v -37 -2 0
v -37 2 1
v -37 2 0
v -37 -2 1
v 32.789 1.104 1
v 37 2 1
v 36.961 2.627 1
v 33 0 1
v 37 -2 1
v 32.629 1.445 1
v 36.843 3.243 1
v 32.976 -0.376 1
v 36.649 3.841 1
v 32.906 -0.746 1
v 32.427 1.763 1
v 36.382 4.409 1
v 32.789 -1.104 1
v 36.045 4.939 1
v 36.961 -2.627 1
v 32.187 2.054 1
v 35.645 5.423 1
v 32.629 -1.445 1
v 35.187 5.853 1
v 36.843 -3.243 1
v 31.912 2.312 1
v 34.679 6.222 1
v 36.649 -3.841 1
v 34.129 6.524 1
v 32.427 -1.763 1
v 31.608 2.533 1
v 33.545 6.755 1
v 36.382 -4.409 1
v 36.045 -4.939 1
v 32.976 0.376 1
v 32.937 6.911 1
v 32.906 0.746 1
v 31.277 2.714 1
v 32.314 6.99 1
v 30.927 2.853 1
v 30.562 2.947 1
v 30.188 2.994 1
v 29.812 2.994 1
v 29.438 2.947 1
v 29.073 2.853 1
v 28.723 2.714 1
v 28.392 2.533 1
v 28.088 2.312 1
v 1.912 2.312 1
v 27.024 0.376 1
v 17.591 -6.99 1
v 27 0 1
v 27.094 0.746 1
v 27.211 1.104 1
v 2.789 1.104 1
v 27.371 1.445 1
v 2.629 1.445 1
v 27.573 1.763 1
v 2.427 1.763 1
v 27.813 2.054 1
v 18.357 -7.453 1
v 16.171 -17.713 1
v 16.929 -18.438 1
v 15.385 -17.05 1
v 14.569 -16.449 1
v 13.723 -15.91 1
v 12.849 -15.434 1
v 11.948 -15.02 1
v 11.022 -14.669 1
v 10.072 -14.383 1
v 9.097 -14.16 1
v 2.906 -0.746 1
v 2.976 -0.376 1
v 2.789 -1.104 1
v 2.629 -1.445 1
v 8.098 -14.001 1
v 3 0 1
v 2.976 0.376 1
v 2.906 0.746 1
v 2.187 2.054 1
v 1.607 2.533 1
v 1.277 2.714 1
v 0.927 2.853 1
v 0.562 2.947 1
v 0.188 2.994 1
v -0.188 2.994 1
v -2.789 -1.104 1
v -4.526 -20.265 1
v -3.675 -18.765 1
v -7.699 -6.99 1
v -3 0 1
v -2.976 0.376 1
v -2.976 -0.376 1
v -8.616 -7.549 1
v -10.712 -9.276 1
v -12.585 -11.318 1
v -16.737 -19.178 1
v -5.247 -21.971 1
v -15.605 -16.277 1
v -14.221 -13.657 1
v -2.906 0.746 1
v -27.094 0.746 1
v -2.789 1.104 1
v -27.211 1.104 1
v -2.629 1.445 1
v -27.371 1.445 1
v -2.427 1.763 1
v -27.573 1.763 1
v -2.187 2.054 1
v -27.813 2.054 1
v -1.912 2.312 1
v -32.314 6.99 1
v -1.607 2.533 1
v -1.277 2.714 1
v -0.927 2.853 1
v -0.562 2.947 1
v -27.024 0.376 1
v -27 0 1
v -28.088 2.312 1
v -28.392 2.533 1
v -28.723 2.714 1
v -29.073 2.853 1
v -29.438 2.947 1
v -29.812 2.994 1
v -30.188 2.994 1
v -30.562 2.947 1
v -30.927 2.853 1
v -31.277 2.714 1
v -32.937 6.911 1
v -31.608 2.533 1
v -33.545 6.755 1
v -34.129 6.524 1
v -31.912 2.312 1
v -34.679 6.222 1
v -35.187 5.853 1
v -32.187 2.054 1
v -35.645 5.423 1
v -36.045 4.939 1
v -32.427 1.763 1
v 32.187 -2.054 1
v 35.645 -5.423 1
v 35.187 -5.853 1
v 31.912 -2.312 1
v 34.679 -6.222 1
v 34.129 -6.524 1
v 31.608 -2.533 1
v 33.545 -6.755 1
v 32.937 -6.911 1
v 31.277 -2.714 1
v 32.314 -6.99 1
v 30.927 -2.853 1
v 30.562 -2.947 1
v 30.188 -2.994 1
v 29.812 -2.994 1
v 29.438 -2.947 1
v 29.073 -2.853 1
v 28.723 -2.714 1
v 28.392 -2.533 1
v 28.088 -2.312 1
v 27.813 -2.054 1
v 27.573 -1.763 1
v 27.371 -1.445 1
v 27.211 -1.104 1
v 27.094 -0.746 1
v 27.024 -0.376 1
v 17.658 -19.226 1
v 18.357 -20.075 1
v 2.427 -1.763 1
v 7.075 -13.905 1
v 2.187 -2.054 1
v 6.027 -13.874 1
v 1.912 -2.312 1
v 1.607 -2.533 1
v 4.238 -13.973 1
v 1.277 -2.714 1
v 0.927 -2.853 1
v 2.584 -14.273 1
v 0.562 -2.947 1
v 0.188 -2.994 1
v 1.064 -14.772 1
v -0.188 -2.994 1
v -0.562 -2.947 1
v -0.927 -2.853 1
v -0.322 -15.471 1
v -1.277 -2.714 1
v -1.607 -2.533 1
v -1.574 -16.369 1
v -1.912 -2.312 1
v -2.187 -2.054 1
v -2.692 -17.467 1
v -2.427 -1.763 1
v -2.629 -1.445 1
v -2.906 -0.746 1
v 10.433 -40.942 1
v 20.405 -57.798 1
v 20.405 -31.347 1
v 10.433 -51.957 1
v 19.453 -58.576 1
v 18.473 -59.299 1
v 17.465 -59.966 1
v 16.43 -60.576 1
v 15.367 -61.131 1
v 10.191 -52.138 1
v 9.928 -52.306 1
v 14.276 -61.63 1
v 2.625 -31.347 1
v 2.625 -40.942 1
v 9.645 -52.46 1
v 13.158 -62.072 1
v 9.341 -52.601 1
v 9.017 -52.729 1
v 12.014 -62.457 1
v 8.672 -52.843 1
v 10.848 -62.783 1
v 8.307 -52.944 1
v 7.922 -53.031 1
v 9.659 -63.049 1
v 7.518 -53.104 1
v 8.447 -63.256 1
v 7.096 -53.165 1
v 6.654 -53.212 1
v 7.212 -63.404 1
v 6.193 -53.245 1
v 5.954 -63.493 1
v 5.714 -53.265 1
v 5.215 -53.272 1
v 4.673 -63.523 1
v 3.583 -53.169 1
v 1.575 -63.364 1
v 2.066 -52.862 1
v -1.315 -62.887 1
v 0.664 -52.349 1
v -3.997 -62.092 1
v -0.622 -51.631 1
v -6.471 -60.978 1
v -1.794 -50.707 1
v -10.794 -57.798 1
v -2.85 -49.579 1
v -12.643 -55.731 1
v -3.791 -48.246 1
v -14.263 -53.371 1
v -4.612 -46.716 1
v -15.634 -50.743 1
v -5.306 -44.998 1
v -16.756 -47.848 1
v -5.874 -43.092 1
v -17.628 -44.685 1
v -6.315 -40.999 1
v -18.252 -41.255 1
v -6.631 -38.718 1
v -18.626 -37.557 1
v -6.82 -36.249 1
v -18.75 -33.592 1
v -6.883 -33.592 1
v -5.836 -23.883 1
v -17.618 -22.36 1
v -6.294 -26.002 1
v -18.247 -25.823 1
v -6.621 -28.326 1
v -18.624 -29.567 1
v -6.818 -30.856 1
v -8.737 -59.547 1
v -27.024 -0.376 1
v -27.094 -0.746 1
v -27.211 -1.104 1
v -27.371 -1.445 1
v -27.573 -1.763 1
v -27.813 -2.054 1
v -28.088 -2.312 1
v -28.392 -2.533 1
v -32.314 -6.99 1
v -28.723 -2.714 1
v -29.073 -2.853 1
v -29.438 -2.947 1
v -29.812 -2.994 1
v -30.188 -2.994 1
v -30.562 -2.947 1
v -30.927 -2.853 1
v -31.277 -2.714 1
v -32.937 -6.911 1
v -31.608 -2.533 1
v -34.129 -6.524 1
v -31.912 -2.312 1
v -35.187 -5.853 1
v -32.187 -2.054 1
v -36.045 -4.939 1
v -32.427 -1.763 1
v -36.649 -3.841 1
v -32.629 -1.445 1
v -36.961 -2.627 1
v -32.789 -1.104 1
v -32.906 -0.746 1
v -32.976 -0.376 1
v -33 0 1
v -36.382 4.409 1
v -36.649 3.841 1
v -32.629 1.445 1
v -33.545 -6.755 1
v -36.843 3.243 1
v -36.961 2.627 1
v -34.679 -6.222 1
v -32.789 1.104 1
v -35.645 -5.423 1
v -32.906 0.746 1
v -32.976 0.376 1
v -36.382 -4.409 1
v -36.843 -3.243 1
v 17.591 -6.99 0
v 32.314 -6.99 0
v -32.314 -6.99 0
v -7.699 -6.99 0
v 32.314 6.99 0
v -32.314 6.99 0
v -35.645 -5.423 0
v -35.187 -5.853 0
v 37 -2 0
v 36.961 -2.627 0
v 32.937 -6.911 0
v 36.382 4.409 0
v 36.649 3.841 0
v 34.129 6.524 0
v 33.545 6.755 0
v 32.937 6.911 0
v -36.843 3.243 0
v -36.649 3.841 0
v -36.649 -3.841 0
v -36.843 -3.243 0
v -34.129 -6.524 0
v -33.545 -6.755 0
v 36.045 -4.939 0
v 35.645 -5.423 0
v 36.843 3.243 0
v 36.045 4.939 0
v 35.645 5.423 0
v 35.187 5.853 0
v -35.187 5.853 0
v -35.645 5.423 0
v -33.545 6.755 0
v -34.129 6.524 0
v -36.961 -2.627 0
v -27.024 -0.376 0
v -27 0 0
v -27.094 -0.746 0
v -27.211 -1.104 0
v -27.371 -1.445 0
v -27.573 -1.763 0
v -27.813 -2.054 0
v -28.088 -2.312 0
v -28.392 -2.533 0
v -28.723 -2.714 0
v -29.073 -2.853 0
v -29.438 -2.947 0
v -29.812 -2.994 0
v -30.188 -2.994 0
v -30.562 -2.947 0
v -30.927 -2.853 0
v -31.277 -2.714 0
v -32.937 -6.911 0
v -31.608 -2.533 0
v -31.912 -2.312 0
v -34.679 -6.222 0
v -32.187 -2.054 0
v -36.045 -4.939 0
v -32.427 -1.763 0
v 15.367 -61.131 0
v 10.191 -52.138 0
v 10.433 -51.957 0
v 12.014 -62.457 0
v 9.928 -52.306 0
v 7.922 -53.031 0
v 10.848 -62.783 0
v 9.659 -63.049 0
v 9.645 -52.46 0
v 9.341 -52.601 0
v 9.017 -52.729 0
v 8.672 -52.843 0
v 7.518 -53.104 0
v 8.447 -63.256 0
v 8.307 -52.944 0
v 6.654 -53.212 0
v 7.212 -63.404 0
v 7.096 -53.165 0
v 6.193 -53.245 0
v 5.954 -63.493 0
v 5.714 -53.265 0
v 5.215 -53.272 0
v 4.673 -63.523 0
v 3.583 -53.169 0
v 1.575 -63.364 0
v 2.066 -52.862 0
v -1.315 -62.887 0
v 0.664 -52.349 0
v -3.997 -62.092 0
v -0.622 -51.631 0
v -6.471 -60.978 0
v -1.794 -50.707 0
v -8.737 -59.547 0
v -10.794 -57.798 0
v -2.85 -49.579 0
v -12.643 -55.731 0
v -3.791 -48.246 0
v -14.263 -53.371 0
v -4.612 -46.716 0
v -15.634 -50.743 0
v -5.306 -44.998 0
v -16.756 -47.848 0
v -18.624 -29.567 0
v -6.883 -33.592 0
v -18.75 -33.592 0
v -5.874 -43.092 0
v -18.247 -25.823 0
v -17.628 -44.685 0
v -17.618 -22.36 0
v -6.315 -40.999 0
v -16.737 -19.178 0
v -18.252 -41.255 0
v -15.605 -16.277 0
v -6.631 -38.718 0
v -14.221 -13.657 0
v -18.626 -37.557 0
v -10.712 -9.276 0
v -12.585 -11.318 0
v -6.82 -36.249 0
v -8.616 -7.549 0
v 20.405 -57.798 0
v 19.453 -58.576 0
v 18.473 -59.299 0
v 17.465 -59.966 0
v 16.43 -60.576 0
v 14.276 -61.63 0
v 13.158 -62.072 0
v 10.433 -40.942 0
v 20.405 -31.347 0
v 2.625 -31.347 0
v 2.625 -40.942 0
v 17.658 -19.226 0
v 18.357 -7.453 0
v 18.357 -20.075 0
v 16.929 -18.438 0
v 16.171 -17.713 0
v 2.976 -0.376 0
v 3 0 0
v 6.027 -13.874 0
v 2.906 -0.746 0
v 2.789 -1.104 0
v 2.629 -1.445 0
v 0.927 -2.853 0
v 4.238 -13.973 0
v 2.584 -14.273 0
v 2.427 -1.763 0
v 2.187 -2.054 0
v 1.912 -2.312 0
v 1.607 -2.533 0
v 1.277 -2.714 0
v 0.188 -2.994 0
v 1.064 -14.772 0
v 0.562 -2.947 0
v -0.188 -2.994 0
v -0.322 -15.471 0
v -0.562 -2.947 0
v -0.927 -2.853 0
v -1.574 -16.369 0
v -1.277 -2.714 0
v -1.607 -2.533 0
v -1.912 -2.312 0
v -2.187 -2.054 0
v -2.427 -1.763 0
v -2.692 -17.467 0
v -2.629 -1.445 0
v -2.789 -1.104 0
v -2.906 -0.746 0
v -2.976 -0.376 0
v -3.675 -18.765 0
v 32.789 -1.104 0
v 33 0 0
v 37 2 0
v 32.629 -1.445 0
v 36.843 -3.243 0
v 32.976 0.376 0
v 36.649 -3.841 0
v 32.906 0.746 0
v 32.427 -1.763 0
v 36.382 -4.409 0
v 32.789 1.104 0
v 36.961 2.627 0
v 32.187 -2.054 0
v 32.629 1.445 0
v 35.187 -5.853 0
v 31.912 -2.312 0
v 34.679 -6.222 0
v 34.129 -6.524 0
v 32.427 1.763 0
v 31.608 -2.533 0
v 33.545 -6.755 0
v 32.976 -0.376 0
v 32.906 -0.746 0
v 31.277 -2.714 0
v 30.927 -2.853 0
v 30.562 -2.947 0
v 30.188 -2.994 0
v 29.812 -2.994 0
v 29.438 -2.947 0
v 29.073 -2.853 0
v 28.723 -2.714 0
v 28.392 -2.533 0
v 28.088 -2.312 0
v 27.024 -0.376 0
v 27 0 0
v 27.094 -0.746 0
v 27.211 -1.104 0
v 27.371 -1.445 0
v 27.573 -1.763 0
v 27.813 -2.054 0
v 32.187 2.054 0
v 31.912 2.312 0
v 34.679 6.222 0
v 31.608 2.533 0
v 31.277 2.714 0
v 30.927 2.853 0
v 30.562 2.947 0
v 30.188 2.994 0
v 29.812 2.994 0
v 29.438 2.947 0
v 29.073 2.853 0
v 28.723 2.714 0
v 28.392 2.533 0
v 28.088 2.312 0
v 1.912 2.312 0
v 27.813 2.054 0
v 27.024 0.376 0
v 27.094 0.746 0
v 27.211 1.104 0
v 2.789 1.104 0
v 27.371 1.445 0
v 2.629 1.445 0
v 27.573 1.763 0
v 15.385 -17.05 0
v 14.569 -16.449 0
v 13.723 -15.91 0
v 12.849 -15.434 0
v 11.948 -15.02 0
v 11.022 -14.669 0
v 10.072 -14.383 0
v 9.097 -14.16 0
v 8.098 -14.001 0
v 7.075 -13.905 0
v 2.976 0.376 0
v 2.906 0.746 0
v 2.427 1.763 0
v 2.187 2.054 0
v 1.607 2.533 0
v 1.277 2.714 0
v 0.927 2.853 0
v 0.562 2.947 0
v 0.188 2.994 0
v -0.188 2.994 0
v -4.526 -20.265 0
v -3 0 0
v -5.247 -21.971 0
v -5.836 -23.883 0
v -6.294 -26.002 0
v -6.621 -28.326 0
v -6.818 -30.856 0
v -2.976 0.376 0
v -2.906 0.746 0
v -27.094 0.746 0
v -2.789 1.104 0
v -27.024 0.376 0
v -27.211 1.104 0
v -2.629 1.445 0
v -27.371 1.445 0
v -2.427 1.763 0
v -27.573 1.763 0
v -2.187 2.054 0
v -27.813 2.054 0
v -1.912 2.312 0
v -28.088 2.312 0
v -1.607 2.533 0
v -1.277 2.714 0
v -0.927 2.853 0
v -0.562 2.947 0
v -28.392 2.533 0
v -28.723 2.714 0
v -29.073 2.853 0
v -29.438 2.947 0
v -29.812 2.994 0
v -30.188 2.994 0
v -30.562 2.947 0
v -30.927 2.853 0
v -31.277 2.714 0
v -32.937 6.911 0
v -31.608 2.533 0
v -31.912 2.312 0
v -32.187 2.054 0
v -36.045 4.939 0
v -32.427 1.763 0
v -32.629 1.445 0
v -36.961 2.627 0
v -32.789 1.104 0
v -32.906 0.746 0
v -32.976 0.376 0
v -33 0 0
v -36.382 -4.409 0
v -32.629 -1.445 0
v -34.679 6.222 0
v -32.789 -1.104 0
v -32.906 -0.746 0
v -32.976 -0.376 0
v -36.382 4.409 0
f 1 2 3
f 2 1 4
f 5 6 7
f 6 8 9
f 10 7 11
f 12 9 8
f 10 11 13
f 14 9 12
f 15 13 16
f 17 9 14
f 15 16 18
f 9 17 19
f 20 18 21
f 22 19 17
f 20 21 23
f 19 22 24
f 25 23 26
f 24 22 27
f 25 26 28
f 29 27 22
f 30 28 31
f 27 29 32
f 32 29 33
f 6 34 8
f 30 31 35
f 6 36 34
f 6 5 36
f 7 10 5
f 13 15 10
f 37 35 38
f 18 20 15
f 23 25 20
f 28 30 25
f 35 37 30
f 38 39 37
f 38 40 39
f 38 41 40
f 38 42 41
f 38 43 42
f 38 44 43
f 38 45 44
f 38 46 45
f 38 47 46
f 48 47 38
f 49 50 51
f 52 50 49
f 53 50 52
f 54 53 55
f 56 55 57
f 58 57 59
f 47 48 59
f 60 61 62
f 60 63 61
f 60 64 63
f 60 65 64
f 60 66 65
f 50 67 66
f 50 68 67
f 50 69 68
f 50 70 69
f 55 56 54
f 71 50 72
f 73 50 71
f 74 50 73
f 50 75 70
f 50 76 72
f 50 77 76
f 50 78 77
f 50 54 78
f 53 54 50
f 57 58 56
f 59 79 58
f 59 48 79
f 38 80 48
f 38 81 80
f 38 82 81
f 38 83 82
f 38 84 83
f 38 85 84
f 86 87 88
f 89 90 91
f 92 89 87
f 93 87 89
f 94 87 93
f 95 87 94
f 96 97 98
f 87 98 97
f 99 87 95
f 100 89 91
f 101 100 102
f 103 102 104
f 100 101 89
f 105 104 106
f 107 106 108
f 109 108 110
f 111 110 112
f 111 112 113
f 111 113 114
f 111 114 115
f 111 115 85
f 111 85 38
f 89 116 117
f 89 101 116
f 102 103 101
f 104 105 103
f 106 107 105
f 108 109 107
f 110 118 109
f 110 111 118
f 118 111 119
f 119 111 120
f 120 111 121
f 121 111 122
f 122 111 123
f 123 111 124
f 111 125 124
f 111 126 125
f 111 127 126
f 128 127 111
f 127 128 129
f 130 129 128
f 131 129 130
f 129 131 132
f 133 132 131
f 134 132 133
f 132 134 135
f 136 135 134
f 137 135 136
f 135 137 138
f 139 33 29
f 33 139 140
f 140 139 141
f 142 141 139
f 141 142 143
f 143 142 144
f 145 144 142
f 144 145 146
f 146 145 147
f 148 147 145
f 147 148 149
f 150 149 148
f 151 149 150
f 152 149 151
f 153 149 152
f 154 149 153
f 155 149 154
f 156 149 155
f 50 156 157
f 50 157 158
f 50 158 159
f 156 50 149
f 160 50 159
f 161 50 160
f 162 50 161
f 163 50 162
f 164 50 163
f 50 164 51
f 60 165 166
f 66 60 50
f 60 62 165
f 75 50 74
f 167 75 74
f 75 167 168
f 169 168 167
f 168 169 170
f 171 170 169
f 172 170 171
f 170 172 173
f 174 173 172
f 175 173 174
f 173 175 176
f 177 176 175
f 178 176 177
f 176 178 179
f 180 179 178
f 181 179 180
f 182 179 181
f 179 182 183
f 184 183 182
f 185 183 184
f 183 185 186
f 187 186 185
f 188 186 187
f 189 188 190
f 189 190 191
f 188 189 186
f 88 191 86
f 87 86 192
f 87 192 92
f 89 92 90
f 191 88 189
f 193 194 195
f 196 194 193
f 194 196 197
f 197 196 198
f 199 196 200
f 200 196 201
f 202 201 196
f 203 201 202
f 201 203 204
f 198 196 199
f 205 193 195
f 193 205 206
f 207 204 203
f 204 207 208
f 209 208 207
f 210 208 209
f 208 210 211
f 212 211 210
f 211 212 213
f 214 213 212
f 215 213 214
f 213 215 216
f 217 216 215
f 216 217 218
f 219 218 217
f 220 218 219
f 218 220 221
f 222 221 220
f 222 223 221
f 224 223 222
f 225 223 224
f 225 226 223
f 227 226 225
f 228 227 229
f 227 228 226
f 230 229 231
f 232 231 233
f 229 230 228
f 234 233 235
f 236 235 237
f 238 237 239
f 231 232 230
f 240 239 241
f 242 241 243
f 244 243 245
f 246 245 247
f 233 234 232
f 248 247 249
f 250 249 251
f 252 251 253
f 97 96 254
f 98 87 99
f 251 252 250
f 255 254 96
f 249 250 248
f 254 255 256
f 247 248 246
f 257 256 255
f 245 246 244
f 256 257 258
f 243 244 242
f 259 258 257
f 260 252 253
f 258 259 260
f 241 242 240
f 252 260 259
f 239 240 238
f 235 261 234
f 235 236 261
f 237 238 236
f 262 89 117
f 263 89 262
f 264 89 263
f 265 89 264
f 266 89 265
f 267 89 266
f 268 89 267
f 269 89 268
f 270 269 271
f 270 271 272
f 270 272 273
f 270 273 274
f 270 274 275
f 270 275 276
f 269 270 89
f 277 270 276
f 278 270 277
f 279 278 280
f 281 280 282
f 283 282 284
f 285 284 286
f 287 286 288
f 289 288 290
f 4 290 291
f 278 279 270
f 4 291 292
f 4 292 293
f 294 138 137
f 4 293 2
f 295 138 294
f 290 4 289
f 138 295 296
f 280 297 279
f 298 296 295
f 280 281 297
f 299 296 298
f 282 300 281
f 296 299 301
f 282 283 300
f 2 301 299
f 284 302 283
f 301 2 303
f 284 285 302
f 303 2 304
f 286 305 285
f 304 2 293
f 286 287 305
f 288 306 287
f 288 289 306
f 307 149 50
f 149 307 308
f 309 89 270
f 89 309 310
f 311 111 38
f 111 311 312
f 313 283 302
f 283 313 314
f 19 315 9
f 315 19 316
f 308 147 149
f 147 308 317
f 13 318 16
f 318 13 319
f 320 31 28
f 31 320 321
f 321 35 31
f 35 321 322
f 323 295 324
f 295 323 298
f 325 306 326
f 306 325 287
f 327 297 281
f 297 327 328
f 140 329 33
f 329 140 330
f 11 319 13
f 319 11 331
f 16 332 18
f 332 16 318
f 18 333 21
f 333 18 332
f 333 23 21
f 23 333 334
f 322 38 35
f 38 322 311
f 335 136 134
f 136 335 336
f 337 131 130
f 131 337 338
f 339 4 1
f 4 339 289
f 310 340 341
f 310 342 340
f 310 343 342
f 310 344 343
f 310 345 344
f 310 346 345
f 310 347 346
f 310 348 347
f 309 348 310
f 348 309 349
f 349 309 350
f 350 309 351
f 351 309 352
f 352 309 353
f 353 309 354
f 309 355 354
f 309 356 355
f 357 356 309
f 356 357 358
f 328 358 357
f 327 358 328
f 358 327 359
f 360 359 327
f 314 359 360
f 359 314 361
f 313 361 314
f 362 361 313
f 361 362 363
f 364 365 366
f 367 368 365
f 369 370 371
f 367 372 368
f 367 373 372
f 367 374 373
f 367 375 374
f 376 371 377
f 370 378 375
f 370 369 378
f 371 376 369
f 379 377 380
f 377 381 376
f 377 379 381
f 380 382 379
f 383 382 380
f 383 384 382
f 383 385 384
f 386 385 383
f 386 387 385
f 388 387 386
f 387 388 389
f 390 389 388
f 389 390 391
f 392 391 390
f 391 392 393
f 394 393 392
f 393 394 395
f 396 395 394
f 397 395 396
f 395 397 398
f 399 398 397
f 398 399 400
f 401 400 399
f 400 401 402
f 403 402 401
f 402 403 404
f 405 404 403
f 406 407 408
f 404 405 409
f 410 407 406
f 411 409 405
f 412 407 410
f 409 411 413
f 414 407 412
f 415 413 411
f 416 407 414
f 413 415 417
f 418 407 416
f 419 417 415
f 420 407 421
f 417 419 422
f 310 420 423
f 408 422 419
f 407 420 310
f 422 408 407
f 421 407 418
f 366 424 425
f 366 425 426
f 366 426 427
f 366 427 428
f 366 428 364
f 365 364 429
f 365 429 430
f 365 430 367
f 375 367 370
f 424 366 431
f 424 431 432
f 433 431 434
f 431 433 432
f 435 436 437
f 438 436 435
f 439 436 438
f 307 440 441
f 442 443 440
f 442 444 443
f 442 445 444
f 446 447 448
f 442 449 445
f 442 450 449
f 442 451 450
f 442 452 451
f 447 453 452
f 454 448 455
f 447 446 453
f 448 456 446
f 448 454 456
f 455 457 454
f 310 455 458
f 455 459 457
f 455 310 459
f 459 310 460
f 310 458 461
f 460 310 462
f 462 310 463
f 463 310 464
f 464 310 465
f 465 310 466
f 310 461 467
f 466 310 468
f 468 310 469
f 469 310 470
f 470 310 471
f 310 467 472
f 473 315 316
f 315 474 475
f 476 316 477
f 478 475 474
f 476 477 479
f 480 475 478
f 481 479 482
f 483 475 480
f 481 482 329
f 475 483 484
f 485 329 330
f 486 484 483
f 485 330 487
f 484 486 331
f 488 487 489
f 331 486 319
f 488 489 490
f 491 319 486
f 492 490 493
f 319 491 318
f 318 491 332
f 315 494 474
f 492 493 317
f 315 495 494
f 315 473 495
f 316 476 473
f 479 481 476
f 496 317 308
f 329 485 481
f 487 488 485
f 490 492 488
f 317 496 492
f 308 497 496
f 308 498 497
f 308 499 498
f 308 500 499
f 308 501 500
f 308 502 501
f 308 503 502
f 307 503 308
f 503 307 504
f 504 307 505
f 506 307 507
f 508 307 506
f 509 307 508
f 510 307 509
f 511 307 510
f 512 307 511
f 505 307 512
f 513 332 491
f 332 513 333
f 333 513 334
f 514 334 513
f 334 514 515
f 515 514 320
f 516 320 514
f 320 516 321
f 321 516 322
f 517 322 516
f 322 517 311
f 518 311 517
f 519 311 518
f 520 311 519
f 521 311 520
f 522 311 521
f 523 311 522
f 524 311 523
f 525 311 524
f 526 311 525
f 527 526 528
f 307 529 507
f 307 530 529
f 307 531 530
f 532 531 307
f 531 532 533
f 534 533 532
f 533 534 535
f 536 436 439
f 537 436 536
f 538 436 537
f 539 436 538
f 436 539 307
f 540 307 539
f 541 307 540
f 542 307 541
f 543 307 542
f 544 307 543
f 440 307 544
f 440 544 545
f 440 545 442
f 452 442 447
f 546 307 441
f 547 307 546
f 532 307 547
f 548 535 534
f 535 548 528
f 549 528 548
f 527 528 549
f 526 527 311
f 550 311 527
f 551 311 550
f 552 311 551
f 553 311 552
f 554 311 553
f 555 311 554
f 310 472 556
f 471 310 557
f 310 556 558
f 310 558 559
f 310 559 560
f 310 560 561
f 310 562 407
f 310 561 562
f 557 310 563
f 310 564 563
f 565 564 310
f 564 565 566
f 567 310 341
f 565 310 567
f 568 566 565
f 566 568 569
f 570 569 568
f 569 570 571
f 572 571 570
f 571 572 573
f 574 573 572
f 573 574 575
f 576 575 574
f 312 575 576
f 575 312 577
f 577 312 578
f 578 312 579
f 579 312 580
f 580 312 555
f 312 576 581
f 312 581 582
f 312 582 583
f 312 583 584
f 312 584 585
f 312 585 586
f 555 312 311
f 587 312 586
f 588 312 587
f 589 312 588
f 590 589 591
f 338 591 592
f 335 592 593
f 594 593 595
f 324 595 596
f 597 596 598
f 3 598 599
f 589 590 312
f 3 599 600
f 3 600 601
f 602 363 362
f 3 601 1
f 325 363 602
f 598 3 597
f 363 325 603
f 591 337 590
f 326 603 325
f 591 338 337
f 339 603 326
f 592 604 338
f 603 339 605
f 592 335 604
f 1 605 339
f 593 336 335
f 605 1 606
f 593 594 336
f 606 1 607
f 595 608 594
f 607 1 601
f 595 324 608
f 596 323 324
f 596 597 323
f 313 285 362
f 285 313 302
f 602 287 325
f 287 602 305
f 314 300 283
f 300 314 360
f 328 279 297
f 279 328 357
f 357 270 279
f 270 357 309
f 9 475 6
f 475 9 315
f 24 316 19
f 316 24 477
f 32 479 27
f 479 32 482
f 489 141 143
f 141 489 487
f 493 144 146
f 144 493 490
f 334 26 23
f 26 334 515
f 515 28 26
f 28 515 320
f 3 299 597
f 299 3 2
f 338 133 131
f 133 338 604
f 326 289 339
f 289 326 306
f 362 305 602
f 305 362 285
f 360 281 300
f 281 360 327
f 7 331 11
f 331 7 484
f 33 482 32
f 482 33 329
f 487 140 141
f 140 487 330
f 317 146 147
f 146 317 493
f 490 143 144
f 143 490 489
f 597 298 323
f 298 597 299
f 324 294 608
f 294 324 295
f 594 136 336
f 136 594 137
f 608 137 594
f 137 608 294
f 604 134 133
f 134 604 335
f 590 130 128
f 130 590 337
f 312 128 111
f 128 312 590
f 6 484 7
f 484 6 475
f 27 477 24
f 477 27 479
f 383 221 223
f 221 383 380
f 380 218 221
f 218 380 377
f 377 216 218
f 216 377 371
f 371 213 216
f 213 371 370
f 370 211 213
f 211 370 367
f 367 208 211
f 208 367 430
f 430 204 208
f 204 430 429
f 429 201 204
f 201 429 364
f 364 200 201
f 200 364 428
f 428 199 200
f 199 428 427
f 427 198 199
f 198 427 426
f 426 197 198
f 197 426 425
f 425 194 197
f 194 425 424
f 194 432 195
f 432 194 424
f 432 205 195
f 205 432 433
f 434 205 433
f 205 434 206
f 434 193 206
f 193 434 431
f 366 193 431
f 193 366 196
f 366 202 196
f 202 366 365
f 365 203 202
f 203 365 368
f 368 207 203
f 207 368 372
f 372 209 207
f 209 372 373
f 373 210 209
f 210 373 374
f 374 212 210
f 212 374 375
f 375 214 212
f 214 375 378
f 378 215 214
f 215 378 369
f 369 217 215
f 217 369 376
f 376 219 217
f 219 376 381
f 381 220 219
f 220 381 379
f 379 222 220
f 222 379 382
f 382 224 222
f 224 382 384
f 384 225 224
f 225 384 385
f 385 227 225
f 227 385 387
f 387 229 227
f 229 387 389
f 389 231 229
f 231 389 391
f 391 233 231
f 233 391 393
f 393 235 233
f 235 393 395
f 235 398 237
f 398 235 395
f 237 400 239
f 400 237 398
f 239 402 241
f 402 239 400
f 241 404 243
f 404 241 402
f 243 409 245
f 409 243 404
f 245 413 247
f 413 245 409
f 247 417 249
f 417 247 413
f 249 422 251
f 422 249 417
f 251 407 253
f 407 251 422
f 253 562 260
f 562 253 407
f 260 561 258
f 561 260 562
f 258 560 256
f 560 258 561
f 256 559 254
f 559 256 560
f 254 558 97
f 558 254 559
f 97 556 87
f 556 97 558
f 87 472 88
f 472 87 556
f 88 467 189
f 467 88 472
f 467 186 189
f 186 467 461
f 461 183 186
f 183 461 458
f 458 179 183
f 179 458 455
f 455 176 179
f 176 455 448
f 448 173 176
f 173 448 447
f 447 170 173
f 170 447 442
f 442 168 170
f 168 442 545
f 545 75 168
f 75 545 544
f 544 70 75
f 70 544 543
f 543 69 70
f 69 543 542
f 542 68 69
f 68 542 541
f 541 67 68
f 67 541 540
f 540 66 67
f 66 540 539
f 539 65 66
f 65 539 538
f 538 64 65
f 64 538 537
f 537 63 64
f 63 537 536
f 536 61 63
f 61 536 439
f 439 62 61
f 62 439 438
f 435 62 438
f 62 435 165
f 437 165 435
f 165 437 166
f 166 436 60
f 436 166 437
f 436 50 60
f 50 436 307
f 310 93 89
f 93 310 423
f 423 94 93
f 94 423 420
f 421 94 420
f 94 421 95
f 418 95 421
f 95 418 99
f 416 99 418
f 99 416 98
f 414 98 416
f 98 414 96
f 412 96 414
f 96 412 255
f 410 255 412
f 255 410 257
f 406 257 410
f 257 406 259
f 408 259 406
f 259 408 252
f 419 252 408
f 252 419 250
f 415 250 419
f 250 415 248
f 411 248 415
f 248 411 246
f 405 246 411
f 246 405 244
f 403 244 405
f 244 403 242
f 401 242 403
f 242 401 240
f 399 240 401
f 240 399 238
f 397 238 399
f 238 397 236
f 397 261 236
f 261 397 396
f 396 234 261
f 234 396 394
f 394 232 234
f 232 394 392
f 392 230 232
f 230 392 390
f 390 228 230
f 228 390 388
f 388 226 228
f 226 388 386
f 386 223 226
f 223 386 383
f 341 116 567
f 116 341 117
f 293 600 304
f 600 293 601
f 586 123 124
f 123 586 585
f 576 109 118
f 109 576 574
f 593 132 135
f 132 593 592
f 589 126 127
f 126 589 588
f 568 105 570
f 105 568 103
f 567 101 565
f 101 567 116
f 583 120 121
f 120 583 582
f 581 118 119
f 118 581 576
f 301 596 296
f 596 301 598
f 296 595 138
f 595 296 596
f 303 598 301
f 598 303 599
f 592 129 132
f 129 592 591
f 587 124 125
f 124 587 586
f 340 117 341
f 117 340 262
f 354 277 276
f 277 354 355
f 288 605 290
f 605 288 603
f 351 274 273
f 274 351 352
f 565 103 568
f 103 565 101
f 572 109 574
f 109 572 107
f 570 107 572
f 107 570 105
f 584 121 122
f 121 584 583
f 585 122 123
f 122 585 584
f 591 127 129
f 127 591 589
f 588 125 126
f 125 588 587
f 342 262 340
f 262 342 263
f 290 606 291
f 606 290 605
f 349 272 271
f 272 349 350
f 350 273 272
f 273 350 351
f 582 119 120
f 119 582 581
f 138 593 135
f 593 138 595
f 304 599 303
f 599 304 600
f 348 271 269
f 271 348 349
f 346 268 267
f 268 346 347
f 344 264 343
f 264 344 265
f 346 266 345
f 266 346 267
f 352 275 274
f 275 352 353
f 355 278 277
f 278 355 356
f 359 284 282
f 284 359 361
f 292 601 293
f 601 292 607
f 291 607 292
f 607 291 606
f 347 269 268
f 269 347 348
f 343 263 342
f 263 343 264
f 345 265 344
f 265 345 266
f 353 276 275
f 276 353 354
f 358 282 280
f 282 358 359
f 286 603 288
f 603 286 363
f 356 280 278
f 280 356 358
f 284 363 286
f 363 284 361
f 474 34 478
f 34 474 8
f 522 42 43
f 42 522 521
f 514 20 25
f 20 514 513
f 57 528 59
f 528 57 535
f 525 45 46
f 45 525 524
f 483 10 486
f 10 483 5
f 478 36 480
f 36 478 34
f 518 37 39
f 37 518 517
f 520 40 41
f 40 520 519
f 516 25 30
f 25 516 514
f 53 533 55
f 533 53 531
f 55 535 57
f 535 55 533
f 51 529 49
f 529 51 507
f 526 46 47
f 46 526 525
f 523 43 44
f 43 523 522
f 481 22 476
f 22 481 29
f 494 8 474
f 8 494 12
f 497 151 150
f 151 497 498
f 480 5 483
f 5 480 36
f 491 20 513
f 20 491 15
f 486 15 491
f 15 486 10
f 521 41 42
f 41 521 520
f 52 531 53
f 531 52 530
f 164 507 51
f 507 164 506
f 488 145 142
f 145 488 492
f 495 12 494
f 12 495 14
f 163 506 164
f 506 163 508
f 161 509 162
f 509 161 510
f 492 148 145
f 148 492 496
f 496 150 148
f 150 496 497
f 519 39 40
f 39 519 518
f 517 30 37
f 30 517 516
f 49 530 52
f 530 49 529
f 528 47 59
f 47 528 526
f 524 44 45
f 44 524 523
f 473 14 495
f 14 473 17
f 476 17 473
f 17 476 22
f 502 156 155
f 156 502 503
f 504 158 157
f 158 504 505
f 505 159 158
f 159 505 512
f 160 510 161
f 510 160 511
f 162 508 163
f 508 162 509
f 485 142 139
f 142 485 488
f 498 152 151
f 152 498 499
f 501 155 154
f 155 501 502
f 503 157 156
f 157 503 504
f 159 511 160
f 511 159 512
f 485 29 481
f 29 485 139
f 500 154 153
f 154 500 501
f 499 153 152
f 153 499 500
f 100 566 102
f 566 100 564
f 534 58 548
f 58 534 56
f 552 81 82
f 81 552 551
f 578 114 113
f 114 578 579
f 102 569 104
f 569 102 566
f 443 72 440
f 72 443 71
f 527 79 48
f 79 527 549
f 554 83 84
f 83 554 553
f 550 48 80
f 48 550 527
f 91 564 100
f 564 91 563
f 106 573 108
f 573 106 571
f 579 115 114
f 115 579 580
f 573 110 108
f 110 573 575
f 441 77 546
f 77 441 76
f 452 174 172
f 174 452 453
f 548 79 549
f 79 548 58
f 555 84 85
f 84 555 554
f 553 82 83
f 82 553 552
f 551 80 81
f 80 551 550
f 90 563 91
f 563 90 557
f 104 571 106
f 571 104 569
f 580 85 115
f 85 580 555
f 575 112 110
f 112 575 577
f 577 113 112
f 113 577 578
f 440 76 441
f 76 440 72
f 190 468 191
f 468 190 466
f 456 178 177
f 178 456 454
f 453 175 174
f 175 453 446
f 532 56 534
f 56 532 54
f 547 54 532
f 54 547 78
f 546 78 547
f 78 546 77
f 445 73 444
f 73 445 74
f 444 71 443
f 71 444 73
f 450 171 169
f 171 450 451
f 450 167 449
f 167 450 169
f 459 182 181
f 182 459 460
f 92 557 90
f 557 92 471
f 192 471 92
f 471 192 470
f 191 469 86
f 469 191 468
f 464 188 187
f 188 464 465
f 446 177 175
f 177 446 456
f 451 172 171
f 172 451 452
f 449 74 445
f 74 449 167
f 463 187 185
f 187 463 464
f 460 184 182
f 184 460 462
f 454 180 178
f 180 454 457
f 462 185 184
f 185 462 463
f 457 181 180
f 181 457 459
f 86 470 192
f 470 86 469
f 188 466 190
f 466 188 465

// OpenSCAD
$fn = 50;


difference() {
	union() {
		translate(v = [0, 0, 0]) {
			rotate(a = [0, 0, 0]) {
				hull() {
					translate(v = [-32.0000000000, 2.0000000000, 0]) {
						rotate(a = [0, 0, 0]) {
							translate(v = [0, 0, 0]) {
								rotate(a = [0, 0, 0]) {
									cylinder(h = 1, r = 5);
								}
							}
						}
					}
					translate(v = [32.0000000000, 2.0000000000, 0]) {
						rotate(a = [0, 0, 0]) {
							translate(v = [0, 0, 0]) {
								rotate(a = [0, 0, 0]) {
									cylinder(h = 1, r = 5);
								}
							}
						}
					}
					translate(v = [-32.0000000000, -2.0000000000, 0]) {
						rotate(a = [0, 0, 0]) {
							translate(v = [0, 0, 0]) {
								rotate(a = [0, 0, 0]) {
									cylinder(h = 1, r = 5);
								}
							}
						}
					}
					translate(v = [32.0000000000, -2.0000000000, 0]) {
						rotate(a = [0, 0, 0]) {
							translate(v = [0, 0, 0]) {
								rotate(a = [0, 0, 0]) {
									cylinder(h = 1, r = 5);
								}
							}
						}
					}
				}
			}
		}
		translate(v = [0, -5, 0]) {
			rotate(a = [0, 0, 0]) {
				linear_extrude(height = 1) {
					text(font = "DejaVu Sans Mono:style=Bold", halign = "center", size = 57.0000000000, text = "G", valign = "top");
				}
			}
		}
	}
	union() {
		translate(v = [-30.0000000000, 0.0000000000, -125.0000000000]) {
			rotate(a = [0, 0, 0]) {
				cylinder(h = 250, r = 3.0000000000);
			}
		}
		translate(v = [30.0000000000, 0.0000000000, -125.0000000000]) {
			rotate(a = [0, 0, 0]) {
				cylinder(h = 250, r = 3.0000000000);
			}
		}
		translate(v = [30.0000000000, 0.0000000000, -125.0000000000]) {
			rotate(a = [0, 0, 0]) {
				cylinder(h = 250, r = 3.0000000000);
			}
		}
		translate(v = [0, 0, -125.0000000000]) {
			rotate(a = [0, 0, 0]) {
				cylinder(h = 250, r = 3.0000000000);
			}
		}
	}
}
